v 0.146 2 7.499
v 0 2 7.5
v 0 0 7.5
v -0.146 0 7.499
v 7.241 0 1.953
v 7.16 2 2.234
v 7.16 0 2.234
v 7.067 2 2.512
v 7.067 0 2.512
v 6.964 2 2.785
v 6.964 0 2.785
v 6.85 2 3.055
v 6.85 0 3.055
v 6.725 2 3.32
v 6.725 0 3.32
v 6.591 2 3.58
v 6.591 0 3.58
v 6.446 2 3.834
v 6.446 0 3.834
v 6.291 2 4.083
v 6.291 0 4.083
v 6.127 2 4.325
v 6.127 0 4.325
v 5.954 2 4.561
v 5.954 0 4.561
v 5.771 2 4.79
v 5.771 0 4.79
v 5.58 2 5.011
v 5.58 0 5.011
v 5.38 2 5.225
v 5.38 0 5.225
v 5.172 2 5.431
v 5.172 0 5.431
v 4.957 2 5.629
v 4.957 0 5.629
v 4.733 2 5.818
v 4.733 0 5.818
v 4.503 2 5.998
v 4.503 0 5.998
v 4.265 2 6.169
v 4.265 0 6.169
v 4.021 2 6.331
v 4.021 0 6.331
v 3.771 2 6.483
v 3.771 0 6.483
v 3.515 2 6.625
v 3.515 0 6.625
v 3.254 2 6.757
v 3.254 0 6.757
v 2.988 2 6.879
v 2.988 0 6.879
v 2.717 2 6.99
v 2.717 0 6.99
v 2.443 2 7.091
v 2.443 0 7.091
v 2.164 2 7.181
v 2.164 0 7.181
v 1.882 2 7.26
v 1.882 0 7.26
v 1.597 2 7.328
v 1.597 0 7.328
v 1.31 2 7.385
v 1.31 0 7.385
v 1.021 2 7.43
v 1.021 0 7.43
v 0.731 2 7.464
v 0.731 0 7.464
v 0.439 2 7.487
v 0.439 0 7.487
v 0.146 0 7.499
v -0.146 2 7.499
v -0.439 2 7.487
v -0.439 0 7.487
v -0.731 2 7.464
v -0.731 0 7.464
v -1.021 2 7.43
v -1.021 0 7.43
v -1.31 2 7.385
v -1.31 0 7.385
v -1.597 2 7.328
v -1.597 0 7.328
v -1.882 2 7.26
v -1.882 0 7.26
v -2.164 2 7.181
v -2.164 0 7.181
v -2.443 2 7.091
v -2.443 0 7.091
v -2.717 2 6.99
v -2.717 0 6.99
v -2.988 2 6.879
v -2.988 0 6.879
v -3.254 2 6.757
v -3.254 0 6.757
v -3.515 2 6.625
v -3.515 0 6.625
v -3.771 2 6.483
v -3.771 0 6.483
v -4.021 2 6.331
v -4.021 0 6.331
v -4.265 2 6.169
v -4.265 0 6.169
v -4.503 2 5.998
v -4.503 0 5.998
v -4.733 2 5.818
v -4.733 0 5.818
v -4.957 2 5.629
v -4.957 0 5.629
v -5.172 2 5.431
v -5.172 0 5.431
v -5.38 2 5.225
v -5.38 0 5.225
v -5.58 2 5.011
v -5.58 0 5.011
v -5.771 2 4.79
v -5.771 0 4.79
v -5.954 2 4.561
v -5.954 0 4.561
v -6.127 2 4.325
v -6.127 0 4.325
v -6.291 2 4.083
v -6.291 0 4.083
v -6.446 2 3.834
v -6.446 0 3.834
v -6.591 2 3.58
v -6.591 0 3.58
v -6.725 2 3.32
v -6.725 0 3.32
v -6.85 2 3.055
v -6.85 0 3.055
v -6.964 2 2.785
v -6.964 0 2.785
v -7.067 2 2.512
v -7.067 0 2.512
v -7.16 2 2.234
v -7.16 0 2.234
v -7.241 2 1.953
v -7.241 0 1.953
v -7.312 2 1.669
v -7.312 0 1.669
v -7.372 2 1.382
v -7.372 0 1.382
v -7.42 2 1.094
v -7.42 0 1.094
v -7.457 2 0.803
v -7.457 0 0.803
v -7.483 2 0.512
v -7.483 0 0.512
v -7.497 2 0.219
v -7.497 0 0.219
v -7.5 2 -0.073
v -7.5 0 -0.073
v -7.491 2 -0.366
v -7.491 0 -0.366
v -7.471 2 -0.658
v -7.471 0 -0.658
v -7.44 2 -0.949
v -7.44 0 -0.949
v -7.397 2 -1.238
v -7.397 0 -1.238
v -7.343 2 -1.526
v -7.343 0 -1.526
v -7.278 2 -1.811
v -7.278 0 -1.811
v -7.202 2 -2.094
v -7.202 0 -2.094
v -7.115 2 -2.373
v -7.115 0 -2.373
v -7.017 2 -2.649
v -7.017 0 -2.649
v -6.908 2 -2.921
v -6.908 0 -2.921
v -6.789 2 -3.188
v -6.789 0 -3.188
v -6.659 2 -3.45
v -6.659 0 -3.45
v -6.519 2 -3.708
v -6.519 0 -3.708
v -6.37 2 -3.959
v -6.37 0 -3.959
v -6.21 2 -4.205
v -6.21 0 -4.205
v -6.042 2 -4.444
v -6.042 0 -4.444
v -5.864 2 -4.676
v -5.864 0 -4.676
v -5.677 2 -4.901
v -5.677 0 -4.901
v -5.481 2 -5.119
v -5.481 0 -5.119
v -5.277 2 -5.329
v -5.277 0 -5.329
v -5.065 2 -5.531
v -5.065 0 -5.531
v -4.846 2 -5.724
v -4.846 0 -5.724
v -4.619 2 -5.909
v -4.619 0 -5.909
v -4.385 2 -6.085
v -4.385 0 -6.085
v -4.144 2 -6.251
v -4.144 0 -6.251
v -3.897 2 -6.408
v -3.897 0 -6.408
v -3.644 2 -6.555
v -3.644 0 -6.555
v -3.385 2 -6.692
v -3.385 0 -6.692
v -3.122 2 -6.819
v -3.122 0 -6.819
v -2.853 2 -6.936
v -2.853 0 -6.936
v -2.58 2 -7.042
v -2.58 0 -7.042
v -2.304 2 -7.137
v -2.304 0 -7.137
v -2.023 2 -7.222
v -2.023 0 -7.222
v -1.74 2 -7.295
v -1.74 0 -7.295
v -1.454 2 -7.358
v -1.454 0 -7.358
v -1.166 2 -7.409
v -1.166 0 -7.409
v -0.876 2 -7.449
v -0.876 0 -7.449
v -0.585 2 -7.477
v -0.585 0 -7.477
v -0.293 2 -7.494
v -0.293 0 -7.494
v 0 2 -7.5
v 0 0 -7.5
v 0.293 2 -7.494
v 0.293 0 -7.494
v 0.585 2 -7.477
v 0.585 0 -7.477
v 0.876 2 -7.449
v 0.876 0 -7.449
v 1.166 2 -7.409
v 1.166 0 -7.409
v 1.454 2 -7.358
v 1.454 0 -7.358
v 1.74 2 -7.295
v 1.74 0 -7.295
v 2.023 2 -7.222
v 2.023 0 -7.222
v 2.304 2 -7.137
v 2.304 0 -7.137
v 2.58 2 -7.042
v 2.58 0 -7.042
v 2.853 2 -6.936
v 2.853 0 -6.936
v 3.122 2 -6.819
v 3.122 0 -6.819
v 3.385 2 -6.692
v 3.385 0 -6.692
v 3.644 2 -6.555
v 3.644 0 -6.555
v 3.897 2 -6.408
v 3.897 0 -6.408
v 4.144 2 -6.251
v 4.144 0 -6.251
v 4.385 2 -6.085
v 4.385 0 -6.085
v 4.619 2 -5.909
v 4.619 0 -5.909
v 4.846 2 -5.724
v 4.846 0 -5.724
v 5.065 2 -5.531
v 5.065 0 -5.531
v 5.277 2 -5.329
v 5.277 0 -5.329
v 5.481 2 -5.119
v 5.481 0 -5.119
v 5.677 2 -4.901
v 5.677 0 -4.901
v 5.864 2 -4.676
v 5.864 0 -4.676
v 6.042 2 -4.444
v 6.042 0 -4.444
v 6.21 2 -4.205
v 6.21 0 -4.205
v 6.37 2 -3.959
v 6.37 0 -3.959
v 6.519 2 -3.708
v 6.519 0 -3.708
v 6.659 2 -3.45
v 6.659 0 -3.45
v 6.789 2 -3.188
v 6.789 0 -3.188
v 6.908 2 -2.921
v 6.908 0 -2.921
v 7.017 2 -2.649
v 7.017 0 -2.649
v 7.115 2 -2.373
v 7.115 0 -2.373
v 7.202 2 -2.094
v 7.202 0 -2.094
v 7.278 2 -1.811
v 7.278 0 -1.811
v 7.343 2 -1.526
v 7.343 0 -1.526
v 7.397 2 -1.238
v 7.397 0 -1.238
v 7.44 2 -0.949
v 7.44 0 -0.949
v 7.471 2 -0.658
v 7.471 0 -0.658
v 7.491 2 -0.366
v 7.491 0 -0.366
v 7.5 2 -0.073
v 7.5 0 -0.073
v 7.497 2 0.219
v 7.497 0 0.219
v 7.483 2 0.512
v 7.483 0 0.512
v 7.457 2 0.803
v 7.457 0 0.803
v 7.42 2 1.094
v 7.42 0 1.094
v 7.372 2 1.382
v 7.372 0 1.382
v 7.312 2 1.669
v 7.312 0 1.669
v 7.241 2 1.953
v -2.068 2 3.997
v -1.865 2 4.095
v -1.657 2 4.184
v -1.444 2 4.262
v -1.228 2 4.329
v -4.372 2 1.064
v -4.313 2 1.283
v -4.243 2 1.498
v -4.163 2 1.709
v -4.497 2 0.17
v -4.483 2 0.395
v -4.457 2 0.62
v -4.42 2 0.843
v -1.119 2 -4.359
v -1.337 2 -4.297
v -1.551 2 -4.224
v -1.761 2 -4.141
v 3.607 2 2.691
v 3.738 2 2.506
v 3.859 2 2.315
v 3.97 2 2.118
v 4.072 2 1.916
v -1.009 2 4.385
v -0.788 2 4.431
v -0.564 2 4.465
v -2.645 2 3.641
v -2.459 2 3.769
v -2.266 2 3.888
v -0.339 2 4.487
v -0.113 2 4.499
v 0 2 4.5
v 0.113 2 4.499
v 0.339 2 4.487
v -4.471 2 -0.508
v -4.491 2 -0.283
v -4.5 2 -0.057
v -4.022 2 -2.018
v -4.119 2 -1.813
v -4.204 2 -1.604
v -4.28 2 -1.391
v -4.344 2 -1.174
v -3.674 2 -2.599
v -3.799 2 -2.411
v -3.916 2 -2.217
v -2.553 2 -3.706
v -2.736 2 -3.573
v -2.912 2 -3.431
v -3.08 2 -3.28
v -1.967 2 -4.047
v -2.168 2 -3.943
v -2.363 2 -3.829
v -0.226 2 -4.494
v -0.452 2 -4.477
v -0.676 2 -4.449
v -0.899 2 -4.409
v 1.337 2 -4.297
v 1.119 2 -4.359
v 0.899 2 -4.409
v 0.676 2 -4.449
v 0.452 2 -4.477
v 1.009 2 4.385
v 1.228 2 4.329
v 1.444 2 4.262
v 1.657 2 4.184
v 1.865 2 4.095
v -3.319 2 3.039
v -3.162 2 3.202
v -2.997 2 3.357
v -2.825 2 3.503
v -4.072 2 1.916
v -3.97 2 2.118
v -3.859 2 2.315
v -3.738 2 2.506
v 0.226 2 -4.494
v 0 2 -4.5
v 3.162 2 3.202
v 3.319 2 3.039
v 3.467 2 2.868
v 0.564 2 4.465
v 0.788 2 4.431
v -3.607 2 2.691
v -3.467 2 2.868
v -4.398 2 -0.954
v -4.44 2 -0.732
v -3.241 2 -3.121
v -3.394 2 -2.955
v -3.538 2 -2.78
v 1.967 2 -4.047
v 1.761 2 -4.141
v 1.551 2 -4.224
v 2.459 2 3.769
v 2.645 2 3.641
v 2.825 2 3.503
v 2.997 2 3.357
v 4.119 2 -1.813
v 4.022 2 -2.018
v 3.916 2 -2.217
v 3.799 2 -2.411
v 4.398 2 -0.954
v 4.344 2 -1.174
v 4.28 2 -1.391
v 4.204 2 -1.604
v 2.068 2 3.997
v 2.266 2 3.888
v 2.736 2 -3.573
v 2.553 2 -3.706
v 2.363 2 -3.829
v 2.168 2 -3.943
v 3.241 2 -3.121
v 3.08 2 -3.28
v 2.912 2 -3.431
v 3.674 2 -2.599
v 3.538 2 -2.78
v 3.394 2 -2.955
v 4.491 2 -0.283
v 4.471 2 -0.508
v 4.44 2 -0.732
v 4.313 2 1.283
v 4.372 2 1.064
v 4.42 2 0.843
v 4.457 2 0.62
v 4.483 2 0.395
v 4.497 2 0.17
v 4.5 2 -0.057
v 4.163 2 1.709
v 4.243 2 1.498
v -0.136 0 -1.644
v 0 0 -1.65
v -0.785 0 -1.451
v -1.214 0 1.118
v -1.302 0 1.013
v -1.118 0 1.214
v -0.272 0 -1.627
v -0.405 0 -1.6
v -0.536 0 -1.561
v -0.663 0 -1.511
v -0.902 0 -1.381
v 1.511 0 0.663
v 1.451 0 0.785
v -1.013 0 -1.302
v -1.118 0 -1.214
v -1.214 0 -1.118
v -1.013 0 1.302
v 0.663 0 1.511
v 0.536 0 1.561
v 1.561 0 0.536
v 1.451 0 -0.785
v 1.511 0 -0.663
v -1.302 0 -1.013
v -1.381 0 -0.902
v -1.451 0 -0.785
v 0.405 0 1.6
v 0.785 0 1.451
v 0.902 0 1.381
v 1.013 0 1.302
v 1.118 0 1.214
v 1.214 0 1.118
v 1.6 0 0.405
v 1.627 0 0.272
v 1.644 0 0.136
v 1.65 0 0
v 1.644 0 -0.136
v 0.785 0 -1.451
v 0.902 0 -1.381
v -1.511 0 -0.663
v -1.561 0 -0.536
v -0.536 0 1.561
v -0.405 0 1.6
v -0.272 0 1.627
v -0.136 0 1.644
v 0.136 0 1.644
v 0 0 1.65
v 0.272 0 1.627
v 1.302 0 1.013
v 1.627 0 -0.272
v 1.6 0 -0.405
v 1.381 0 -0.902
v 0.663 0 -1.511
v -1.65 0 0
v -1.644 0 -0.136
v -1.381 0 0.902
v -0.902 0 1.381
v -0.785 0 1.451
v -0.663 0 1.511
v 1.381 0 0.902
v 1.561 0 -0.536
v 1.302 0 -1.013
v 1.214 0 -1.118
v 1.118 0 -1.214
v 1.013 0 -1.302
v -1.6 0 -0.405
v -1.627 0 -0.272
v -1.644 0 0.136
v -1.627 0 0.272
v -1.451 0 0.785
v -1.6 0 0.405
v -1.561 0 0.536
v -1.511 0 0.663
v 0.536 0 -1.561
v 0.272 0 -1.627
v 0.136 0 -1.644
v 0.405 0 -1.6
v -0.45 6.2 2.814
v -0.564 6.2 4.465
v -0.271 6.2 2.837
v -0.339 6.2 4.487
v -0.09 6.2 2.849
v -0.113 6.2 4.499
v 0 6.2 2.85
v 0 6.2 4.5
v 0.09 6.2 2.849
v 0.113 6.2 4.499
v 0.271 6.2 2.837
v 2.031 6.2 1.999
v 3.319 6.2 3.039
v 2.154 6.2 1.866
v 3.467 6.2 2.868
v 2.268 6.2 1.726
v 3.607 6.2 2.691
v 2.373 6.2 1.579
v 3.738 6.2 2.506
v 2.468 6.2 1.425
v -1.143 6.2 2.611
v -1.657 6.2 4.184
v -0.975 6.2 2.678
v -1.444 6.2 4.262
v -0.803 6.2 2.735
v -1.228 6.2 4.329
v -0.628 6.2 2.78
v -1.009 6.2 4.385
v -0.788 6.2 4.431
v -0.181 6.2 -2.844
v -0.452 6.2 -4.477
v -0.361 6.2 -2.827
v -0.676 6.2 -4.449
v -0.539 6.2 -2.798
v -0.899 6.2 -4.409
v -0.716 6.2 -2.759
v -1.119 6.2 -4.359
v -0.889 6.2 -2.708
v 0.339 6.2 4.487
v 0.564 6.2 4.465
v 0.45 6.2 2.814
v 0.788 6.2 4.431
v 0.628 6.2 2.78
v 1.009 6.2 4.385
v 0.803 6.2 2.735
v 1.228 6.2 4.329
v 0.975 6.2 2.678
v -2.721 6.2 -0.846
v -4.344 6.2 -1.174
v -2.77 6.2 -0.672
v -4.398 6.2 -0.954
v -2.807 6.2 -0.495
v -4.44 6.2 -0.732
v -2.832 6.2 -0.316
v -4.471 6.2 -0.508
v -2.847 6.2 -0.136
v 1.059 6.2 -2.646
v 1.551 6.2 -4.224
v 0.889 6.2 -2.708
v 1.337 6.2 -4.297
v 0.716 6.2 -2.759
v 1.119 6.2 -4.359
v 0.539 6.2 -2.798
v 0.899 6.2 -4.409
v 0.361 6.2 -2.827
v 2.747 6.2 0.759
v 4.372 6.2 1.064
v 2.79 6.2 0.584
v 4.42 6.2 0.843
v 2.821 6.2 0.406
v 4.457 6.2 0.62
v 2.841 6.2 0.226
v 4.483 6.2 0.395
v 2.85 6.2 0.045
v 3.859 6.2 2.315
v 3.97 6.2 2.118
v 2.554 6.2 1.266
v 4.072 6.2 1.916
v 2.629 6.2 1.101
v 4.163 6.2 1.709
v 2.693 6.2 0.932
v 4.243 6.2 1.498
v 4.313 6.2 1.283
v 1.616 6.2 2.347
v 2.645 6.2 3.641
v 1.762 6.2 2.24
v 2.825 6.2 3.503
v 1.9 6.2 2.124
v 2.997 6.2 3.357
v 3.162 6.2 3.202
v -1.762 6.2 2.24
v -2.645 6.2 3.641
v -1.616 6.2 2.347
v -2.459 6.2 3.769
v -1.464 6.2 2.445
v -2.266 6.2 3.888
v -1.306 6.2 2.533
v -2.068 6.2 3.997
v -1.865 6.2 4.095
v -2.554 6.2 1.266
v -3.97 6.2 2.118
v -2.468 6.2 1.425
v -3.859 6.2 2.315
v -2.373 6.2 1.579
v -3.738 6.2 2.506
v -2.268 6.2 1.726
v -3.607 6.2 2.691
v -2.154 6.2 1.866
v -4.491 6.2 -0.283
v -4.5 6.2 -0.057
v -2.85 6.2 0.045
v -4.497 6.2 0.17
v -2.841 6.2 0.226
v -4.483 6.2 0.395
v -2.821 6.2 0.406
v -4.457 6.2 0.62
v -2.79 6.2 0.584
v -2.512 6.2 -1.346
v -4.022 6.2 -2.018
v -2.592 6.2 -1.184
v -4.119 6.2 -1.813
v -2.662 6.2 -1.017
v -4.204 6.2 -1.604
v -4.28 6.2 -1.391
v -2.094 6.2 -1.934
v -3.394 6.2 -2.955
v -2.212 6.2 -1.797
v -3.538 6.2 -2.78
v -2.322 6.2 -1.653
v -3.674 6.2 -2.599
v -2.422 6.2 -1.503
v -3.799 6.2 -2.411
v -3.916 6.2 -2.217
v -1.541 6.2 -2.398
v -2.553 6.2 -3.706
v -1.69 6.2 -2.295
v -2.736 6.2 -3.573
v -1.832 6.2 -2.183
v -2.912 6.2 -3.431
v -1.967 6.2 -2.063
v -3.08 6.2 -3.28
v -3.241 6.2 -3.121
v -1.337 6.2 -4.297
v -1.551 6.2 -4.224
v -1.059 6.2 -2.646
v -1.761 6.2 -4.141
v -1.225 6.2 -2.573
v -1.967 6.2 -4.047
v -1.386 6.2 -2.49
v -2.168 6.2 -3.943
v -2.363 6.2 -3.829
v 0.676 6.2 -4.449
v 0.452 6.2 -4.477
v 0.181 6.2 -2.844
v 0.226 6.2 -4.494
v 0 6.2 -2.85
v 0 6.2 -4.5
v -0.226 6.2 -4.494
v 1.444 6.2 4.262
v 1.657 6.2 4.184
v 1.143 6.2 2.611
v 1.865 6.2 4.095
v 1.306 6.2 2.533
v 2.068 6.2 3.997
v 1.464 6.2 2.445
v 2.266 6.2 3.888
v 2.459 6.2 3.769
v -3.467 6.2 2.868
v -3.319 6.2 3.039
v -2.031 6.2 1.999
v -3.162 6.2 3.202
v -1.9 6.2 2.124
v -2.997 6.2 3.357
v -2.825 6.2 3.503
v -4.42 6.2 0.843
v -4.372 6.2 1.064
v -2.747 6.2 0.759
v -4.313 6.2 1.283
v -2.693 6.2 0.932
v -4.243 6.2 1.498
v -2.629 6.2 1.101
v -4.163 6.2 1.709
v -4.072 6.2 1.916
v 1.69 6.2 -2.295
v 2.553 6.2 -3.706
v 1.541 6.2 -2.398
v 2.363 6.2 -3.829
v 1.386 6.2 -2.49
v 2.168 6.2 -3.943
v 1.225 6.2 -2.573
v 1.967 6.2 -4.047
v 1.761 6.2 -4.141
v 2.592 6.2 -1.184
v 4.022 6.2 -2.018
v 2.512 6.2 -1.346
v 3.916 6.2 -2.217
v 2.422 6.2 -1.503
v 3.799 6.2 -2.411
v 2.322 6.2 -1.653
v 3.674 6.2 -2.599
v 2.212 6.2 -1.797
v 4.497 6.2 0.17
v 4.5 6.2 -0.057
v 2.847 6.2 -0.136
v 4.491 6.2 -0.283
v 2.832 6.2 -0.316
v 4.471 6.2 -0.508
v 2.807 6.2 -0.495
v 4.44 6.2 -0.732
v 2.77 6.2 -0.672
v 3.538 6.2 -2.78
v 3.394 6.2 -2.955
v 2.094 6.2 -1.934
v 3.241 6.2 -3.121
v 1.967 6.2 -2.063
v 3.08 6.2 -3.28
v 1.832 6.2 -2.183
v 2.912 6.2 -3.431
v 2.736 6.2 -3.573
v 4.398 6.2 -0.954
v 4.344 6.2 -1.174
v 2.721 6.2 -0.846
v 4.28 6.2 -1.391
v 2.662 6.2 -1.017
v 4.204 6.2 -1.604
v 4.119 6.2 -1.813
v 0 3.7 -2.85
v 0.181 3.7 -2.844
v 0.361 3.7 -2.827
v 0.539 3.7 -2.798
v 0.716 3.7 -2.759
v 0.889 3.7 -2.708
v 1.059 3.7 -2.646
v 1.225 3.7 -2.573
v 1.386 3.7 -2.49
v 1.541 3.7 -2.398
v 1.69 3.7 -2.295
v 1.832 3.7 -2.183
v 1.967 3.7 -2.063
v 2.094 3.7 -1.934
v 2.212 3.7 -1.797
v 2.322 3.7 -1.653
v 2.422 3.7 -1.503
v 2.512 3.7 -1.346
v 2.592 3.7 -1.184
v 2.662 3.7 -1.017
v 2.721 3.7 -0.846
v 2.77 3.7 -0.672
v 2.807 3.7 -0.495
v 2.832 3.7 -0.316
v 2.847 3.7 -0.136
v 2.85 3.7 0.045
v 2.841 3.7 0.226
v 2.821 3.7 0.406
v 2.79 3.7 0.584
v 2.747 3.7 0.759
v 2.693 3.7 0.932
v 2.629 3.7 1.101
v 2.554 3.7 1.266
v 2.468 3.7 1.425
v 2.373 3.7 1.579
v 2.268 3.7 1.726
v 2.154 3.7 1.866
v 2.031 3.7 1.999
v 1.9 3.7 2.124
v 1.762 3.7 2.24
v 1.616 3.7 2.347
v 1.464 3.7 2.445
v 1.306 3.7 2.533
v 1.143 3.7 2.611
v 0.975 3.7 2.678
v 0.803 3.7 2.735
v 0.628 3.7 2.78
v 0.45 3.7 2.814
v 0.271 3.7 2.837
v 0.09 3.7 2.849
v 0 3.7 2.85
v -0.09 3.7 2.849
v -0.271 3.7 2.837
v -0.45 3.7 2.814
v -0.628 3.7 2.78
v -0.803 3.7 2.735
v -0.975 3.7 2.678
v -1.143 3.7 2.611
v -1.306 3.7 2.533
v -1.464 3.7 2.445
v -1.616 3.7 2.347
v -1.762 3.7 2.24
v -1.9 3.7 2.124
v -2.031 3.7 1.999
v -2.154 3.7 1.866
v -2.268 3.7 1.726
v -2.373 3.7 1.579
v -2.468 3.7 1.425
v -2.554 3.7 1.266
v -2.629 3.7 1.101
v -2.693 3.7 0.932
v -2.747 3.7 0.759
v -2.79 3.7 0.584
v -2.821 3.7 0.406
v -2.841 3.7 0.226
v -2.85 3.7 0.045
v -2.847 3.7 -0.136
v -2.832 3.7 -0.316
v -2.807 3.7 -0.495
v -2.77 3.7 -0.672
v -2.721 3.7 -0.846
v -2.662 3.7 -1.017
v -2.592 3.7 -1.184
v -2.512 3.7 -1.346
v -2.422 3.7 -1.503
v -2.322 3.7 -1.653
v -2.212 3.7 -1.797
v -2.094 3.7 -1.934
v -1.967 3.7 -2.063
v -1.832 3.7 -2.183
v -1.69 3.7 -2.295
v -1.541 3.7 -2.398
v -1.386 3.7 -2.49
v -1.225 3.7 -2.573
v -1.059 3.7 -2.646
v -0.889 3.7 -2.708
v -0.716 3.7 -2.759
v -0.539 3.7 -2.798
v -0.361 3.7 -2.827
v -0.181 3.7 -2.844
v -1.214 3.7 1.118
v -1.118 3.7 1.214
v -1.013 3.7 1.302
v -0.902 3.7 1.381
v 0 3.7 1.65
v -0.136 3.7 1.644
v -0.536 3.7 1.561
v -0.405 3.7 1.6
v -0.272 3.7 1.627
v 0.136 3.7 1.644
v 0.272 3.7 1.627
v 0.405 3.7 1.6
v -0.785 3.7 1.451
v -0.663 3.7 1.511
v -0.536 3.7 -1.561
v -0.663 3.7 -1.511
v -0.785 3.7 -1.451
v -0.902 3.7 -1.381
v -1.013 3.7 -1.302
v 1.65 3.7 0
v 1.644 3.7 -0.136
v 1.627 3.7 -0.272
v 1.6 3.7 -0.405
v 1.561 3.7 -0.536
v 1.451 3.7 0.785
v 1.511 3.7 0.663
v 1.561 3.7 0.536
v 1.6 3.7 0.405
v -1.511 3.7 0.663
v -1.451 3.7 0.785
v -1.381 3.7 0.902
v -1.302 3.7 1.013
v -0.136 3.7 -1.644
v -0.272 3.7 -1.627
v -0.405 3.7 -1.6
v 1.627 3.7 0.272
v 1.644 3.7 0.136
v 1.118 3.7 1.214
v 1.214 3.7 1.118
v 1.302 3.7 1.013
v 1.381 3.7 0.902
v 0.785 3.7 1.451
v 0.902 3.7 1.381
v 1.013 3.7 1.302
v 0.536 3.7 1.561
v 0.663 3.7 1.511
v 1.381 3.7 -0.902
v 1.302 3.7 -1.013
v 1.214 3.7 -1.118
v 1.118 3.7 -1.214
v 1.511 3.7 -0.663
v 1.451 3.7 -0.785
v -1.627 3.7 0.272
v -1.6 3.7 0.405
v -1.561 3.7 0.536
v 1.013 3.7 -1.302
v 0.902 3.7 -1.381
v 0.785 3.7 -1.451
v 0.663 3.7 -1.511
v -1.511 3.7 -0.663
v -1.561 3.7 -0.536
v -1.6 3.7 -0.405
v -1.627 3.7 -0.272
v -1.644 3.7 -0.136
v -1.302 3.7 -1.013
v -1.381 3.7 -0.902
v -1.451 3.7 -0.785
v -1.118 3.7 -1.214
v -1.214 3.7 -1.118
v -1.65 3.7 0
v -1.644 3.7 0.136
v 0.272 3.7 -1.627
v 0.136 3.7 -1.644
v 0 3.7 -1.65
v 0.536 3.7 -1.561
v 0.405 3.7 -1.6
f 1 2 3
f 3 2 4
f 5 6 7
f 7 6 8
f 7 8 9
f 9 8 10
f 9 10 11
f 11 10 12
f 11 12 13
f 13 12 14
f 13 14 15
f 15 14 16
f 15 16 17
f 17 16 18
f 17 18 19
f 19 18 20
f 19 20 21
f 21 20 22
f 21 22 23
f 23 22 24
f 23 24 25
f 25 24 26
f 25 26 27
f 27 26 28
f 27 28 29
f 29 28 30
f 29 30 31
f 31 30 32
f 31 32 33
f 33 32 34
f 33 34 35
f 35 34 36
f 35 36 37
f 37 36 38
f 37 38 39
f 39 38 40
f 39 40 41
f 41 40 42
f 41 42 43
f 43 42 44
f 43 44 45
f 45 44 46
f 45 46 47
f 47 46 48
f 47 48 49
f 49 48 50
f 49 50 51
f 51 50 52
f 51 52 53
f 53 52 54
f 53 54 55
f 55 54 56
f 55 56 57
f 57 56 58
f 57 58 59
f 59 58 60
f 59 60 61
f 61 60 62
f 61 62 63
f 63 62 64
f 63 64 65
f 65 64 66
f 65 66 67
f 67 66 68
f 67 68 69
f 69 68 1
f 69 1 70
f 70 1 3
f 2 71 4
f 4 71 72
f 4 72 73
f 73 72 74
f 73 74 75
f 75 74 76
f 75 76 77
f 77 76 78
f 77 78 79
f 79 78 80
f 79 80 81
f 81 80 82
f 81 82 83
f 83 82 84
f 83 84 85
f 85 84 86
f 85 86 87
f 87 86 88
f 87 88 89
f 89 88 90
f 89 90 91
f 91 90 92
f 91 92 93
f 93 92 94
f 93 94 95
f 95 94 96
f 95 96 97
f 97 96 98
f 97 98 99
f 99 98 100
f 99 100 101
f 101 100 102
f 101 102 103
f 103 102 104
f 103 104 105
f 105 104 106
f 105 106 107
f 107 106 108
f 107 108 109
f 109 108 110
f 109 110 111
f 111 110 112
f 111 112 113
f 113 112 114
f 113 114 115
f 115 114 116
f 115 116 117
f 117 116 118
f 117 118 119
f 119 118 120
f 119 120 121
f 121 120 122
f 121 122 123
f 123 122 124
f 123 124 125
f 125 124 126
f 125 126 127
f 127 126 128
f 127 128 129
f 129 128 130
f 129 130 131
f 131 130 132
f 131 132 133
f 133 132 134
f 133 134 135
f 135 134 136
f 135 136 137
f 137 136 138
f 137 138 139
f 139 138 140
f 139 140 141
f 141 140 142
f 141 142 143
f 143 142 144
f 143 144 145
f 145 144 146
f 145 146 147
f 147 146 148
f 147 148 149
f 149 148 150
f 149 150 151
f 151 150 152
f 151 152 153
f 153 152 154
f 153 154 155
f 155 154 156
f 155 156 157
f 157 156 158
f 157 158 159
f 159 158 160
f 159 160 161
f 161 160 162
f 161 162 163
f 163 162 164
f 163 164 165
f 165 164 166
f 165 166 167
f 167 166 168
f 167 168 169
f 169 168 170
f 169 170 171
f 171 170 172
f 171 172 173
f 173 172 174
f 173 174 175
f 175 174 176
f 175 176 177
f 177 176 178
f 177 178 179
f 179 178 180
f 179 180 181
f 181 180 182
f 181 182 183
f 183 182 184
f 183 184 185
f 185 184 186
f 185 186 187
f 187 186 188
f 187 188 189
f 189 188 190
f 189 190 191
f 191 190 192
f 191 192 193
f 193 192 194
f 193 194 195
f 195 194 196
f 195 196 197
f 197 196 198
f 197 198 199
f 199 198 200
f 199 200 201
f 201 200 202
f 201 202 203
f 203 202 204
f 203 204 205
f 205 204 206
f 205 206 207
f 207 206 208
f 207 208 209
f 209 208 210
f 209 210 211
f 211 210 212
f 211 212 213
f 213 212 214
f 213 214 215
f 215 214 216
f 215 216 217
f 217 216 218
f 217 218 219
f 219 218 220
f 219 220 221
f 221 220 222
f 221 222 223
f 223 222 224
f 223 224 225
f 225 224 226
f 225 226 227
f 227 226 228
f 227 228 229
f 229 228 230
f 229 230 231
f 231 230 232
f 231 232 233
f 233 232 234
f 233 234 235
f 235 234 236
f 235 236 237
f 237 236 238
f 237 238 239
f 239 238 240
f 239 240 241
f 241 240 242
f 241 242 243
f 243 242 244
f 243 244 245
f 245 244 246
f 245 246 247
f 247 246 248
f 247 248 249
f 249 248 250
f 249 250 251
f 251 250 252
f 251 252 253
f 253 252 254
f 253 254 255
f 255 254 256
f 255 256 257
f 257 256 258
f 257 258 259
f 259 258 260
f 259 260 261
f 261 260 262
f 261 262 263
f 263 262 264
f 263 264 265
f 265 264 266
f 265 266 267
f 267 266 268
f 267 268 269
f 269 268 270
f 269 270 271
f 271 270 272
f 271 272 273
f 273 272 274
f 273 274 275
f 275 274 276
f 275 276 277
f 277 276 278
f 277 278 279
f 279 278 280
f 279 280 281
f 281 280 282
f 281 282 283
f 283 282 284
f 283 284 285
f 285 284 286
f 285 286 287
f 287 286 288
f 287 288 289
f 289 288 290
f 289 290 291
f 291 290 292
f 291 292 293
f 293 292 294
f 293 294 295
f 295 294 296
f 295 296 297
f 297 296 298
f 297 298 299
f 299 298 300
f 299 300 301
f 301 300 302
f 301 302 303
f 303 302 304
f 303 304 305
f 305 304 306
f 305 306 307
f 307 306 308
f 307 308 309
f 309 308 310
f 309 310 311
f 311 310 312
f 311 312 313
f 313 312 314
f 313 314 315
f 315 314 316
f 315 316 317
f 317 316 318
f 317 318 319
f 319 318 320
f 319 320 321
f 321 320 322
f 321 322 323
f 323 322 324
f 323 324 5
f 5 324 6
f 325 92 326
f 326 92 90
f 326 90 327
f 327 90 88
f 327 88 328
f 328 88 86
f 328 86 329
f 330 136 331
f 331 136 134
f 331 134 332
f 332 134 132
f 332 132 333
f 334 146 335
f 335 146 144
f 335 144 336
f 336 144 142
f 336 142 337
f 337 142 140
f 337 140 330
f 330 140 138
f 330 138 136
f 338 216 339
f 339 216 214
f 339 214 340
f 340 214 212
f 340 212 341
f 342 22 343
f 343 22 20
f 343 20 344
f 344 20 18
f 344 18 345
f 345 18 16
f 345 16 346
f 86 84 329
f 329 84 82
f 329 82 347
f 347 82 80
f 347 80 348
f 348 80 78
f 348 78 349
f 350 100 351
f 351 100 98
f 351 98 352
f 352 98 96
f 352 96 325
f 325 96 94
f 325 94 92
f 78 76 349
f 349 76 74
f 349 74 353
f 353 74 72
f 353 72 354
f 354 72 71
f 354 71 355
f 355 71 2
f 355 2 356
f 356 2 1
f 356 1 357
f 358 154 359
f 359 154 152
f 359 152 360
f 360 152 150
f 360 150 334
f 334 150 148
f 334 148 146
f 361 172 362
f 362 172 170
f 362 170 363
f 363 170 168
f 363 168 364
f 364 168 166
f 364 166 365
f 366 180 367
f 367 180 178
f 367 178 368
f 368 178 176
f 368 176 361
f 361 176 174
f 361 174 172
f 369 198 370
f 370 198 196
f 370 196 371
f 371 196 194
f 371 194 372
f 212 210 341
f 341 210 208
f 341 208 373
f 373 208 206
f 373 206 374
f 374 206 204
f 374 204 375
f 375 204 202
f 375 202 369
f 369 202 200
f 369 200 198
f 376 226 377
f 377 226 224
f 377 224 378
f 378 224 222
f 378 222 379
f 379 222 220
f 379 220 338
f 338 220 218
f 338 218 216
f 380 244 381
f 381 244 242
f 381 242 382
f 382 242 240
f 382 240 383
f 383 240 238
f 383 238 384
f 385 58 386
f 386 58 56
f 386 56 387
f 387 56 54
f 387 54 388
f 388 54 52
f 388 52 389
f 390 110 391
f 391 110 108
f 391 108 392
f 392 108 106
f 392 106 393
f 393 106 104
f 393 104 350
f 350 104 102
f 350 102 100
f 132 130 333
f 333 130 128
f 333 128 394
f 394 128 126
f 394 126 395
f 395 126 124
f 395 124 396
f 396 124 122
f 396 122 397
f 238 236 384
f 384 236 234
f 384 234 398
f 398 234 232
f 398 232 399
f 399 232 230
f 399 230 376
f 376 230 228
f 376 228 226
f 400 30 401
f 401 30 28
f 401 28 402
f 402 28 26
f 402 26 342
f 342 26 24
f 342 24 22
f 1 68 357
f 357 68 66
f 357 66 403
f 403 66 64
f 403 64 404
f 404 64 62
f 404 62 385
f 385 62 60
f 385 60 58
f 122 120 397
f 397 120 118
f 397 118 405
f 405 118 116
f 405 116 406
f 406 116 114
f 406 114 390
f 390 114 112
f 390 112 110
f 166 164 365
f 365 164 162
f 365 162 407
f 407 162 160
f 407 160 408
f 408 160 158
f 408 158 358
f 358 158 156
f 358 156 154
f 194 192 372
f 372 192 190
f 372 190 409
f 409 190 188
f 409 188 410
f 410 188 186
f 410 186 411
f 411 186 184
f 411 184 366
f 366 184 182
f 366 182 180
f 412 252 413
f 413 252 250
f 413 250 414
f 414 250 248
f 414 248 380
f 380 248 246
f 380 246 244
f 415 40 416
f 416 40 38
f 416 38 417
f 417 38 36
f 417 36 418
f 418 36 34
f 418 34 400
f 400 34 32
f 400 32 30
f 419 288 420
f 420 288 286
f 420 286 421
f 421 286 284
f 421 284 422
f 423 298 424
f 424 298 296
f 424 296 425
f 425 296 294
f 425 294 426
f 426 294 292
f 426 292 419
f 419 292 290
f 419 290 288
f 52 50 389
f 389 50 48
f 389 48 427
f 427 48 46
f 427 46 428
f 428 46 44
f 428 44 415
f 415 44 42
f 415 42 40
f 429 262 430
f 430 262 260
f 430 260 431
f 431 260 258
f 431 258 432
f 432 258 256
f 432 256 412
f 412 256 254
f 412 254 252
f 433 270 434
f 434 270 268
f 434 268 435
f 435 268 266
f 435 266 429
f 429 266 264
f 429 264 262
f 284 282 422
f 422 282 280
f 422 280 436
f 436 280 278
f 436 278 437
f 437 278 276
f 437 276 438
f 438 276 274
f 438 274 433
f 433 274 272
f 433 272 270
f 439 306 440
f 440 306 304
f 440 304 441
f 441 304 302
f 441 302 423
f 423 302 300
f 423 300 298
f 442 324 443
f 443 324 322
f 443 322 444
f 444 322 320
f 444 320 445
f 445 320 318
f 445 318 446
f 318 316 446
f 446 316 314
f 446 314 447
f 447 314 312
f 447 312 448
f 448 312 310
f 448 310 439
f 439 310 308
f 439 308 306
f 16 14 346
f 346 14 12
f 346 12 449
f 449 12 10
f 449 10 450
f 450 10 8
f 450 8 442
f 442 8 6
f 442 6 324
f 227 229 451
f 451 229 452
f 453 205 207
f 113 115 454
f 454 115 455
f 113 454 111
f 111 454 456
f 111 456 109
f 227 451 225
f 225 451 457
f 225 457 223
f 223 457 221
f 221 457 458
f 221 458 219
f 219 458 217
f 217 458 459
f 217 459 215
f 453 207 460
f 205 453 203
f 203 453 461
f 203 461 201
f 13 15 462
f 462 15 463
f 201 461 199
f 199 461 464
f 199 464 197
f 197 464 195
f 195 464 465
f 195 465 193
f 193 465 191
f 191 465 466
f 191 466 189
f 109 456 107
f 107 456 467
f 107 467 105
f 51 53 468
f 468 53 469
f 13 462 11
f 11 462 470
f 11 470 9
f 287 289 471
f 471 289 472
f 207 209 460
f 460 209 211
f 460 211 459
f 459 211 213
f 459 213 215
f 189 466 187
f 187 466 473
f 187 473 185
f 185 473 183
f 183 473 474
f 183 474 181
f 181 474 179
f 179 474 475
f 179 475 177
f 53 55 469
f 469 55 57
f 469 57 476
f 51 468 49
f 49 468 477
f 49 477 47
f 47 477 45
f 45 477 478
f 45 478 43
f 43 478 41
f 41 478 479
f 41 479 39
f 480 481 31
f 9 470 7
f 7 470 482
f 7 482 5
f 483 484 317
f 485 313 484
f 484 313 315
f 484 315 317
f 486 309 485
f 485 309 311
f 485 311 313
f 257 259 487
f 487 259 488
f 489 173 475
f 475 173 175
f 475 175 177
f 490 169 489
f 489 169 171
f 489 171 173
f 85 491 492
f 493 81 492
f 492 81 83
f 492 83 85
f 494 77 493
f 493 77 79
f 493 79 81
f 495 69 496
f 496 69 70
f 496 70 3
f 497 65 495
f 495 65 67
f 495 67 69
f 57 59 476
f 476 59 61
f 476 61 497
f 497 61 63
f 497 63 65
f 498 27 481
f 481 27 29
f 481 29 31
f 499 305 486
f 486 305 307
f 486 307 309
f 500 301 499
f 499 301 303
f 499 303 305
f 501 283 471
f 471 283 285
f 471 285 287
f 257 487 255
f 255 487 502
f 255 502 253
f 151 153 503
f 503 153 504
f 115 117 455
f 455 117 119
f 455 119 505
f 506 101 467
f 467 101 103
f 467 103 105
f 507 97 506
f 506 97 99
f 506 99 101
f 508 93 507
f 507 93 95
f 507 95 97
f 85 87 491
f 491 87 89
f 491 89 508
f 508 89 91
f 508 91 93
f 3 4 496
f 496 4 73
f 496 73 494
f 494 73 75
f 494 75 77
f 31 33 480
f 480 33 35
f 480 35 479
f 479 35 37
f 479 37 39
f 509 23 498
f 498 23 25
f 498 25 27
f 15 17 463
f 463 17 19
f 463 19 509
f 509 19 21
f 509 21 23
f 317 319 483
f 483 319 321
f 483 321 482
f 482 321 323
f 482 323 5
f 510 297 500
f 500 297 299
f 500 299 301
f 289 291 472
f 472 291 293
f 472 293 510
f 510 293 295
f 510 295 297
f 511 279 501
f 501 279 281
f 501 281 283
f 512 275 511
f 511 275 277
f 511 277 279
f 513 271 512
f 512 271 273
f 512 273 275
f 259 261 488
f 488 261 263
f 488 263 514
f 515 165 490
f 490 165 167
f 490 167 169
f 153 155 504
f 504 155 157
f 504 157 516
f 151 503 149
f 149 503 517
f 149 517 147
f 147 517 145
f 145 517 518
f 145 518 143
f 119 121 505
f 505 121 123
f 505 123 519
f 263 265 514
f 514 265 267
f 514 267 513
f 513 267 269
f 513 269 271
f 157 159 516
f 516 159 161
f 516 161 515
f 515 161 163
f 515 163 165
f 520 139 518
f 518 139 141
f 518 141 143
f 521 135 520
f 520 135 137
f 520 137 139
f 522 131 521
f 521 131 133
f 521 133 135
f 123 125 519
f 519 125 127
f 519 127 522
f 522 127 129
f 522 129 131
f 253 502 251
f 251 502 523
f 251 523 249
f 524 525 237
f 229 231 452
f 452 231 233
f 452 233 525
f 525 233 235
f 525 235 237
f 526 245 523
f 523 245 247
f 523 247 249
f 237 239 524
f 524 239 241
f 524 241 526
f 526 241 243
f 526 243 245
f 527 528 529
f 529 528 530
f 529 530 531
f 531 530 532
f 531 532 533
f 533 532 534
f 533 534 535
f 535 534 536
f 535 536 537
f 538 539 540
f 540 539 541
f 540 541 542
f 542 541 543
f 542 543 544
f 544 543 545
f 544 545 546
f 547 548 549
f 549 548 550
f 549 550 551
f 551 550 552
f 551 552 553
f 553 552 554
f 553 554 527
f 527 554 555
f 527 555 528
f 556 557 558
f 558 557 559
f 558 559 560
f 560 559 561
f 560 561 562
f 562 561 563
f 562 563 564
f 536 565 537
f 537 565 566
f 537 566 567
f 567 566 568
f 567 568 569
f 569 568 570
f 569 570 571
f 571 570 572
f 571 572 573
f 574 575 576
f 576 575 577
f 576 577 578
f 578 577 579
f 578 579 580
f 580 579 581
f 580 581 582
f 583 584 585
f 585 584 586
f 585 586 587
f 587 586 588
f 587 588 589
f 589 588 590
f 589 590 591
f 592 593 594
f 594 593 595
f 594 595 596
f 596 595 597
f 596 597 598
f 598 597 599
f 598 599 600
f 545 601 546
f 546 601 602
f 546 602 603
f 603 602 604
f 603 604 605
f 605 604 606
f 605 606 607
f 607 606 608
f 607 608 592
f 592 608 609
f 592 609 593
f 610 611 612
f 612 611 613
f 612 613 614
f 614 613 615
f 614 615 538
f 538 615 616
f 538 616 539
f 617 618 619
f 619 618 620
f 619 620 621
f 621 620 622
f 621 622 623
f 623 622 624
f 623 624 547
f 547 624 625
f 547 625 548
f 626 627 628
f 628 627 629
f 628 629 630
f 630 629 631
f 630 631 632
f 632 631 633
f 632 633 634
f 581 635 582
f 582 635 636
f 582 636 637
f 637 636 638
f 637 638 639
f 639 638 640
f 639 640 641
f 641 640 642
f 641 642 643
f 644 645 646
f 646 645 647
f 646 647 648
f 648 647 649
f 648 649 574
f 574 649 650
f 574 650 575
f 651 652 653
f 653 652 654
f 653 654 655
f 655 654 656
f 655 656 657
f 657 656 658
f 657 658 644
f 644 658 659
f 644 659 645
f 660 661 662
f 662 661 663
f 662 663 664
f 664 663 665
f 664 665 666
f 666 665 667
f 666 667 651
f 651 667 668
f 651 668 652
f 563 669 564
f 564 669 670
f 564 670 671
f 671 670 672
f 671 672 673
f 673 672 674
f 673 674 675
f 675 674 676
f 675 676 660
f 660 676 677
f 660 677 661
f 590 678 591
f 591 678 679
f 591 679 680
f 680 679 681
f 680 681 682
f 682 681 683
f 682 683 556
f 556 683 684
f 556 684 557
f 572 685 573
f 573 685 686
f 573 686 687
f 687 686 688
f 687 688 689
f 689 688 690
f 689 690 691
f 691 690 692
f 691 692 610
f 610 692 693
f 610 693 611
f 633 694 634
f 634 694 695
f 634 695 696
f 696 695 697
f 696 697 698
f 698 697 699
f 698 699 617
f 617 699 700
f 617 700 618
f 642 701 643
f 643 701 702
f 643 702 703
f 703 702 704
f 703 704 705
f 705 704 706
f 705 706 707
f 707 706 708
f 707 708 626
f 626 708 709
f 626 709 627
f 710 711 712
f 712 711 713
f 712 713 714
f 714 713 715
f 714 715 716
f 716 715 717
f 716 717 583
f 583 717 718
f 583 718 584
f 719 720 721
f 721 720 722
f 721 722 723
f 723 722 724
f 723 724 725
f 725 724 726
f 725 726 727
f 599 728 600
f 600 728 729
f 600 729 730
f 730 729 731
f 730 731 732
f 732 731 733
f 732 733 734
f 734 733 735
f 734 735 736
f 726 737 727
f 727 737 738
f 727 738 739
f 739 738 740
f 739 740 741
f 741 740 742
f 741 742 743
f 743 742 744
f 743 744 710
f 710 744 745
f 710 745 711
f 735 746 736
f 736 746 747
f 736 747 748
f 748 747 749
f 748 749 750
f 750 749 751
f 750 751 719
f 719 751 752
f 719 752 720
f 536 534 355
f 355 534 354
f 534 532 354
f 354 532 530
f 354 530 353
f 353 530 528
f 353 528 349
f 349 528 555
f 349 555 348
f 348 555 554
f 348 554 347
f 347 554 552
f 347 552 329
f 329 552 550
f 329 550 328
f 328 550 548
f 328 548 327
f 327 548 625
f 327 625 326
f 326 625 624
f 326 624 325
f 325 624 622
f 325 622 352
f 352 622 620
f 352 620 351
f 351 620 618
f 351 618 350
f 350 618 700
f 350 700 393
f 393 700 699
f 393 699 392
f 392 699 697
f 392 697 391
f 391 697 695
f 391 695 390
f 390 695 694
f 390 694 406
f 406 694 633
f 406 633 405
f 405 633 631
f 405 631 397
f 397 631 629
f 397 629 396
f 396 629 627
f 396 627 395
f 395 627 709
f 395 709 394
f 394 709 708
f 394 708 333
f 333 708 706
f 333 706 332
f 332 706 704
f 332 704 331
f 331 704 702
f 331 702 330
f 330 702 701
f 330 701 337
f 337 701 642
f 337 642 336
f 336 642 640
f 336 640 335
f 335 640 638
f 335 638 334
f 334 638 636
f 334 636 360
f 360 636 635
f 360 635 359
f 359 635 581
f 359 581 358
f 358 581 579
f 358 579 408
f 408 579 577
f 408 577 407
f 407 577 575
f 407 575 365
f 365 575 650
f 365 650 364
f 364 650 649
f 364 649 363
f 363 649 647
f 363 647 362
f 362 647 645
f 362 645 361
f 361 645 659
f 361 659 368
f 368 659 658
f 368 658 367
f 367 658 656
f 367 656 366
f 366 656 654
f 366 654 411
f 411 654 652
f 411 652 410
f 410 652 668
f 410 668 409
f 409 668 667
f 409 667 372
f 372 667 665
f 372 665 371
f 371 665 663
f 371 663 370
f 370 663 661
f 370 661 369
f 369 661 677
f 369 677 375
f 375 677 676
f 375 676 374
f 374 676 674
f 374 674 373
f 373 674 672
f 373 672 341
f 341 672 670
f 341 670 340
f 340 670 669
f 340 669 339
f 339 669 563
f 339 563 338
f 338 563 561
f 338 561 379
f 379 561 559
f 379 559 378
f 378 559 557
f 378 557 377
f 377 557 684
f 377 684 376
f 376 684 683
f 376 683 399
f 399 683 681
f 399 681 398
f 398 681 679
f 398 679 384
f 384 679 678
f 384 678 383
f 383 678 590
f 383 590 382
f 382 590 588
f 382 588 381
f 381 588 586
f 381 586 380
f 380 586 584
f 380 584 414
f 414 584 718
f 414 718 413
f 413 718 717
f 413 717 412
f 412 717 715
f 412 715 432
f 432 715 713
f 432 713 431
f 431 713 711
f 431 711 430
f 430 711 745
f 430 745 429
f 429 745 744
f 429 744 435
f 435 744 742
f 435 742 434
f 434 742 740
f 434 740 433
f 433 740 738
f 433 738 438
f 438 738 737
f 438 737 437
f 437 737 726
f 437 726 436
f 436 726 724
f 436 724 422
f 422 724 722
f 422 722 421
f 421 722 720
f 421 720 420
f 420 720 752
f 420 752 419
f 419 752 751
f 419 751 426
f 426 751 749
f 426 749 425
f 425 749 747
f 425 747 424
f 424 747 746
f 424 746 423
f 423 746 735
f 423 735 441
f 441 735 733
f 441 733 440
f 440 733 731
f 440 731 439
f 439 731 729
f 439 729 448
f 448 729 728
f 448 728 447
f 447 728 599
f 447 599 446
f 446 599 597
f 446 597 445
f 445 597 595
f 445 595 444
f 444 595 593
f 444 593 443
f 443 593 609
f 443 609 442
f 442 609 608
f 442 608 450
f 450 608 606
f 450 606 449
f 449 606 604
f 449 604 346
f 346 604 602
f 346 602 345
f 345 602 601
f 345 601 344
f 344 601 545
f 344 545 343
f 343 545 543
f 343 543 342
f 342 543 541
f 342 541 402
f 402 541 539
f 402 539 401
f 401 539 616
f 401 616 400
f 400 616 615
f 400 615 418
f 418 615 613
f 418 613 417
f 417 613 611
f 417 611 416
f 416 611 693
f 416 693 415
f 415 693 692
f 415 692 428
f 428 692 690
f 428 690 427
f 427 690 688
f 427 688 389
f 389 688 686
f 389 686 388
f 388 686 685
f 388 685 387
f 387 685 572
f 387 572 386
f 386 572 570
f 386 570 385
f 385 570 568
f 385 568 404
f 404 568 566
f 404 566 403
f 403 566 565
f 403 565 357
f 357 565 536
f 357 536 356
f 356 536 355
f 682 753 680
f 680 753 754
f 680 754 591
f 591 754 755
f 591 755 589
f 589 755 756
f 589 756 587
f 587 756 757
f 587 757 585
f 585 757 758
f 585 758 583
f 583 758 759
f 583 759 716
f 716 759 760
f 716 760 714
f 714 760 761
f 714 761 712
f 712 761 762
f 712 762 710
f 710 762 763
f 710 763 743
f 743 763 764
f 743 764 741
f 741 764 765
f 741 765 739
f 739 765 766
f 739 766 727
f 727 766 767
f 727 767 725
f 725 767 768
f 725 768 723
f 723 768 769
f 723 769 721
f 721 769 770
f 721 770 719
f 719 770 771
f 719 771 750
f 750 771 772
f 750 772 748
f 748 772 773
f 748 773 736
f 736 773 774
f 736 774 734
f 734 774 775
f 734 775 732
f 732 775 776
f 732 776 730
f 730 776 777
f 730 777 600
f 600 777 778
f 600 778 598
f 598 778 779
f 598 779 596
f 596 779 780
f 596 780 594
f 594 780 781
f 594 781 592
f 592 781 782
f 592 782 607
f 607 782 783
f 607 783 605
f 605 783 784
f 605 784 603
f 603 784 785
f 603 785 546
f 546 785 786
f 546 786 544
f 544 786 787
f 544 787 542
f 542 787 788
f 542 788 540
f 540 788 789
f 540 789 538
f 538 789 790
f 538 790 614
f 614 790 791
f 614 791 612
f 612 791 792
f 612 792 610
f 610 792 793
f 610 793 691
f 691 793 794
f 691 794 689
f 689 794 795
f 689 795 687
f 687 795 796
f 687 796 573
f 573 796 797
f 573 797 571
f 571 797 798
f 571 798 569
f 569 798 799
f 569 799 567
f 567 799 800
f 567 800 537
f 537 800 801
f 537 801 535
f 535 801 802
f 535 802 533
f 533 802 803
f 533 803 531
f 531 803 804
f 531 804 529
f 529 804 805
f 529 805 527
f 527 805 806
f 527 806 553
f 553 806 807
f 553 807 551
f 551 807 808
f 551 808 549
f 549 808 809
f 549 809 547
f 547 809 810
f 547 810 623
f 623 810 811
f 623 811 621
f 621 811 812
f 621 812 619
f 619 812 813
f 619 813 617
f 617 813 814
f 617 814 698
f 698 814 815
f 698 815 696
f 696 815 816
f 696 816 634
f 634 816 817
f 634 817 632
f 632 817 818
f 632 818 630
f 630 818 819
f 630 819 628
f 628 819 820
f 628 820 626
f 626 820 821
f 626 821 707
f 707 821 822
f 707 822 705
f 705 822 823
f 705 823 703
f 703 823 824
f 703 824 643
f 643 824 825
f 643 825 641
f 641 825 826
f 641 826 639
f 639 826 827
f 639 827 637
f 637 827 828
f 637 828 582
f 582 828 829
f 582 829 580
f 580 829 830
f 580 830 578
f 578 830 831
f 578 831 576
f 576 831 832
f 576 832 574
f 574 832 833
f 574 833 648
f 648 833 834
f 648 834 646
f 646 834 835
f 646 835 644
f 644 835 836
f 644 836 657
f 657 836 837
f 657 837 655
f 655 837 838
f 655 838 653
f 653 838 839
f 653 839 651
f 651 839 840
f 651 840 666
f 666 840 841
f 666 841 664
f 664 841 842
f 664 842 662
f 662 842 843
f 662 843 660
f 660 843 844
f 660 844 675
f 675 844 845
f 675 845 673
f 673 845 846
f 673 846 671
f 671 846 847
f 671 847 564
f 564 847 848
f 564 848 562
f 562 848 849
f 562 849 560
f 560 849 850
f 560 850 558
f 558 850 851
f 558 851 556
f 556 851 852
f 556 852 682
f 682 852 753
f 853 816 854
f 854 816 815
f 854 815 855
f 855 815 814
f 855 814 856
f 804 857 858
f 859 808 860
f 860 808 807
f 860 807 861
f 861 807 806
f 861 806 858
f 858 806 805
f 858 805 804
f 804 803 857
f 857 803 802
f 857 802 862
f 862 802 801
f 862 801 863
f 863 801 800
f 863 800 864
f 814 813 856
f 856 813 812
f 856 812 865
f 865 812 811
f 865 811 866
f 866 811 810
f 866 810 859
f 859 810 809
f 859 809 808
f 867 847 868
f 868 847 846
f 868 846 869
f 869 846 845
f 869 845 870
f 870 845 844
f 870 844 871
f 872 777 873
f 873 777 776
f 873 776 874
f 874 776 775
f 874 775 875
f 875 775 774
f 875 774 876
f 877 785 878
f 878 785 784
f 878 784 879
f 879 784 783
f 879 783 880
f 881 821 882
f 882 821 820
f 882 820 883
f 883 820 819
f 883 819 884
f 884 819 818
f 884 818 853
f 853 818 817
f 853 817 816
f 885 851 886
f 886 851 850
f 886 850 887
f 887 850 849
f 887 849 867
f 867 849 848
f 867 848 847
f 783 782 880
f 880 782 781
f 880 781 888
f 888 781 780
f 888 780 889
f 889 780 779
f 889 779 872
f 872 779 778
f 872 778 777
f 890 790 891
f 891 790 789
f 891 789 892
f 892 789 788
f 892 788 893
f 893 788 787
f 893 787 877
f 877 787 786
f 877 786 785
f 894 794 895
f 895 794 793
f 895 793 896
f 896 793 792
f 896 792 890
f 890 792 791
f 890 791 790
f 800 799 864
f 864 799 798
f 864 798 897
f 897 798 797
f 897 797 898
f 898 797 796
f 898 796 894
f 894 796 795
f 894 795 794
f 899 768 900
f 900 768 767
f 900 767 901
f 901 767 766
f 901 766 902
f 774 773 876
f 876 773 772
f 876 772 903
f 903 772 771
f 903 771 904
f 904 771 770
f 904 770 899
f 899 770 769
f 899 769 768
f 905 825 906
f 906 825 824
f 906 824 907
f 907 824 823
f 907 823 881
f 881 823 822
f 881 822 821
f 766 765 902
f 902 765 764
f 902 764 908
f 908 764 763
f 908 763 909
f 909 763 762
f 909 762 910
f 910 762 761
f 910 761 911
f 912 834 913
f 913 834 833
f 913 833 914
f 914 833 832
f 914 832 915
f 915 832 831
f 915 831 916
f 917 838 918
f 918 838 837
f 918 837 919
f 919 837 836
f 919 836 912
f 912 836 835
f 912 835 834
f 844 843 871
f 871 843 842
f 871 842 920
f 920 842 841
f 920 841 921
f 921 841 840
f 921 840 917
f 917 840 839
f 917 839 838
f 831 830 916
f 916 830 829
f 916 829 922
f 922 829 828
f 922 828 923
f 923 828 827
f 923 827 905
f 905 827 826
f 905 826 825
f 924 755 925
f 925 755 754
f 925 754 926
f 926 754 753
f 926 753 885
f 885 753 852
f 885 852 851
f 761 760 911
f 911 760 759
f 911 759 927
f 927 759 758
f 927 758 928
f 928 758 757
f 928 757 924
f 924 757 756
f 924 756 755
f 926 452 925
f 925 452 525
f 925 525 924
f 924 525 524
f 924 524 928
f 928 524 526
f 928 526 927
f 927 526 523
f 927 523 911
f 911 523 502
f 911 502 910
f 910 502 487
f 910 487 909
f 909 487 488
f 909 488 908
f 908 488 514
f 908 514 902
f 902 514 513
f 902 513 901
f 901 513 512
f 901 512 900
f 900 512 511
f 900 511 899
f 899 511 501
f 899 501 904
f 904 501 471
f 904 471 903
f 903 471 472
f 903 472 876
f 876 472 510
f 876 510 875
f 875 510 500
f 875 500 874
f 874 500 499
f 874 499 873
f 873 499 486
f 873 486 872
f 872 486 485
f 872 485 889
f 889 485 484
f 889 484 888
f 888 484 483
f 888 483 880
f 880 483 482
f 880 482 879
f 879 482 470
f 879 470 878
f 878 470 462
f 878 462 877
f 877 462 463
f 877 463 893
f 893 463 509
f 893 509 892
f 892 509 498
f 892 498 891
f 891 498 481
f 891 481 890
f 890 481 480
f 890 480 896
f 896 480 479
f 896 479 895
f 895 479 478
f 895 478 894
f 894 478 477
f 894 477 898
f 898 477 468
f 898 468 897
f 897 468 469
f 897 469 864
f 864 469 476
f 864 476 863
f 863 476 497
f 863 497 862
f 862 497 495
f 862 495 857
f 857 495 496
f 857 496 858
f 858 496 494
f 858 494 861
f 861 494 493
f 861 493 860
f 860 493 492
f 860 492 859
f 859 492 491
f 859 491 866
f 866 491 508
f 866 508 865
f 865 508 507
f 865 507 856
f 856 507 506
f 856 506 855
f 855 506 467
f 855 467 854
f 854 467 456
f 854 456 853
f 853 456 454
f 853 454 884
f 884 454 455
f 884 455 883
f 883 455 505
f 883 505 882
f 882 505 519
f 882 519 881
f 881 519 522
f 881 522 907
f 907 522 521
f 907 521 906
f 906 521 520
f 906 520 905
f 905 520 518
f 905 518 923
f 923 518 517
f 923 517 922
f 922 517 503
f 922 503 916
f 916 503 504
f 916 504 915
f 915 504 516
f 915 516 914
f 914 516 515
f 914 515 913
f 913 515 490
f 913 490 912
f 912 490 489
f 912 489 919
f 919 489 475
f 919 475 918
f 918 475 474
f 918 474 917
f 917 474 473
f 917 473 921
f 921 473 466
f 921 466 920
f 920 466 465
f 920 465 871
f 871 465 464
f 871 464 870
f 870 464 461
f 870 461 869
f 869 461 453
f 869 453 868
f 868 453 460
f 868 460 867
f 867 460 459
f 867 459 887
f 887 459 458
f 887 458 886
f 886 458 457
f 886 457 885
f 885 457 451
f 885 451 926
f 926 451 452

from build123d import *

# Parameters (mm, degrees)
SKETCH_1_R          = 7.5
EXTRUDE_1_DEPTH     = 2
SKETCH_4_R          = 4.5
SKETCH_4_R_2        = 2.85
EXTRUDE_2_DEPTH     = 4.2
SKETCH_5_R          = 2.85
EXTRUDE_3_DEPTH     = 1.7
SKETCH_6_R          = 1.65
CUT_EXTRUDE_1_DEPTH = 13.28576412


with BuildPart() as part:
    # 草图1 → 凸台-拉伸1 (new body)
    with BuildSketch(Plane(origin=(0, 0, 0), x_dir=(1, 0, 0), z_dir=(0, 1, 0))):
        with Locations(Location((0, 0, 0), (0, 0, 270))):
            Circle(SKETCH_1_R)
    extrude(amount=EXTRUDE_1_DEPTH)

    # 草图4 → 凸台-拉伸2 (add)
    with BuildSketch(Plane(origin=(0, 2, 0), x_dir=(1, 0, 0), z_dir=(0, 1, 0))):
        with Locations(Location((0, 0, 0), (0, 0, 270))):
            Circle(SKETCH_4_R)
        with Locations(Location((0, 0, 0), (0, 0, 270))):
            Circle(SKETCH_4_R_2, mode=Mode.SUBTRACT)
    extrude(amount=EXTRUDE_2_DEPTH)

    # 草图5 → 凸台-拉伸3 (add)
    with BuildSketch(Plane(origin=(0, 2, 0), x_dir=(1, 0, 0), z_dir=(0, 1, 0))):
        with Locations(Location((0, 0, 0), (0, 0, 270))):
            Circle(SKETCH_5_R)
    extrude(amount=EXTRUDE_3_DEPTH)

    # 草图6 → 切除-拉伸1 (cut, through all)
    with BuildSketch(Plane.XZ):
        with Locations(Location((0, 0, 0), (0, 0, 270))):
            Circle(SKETCH_6_R)
    extrude(amount=-CUT_EXTRUDE_1_DEPTH, mode=Mode.SUBTRACT)


solid = part.part
